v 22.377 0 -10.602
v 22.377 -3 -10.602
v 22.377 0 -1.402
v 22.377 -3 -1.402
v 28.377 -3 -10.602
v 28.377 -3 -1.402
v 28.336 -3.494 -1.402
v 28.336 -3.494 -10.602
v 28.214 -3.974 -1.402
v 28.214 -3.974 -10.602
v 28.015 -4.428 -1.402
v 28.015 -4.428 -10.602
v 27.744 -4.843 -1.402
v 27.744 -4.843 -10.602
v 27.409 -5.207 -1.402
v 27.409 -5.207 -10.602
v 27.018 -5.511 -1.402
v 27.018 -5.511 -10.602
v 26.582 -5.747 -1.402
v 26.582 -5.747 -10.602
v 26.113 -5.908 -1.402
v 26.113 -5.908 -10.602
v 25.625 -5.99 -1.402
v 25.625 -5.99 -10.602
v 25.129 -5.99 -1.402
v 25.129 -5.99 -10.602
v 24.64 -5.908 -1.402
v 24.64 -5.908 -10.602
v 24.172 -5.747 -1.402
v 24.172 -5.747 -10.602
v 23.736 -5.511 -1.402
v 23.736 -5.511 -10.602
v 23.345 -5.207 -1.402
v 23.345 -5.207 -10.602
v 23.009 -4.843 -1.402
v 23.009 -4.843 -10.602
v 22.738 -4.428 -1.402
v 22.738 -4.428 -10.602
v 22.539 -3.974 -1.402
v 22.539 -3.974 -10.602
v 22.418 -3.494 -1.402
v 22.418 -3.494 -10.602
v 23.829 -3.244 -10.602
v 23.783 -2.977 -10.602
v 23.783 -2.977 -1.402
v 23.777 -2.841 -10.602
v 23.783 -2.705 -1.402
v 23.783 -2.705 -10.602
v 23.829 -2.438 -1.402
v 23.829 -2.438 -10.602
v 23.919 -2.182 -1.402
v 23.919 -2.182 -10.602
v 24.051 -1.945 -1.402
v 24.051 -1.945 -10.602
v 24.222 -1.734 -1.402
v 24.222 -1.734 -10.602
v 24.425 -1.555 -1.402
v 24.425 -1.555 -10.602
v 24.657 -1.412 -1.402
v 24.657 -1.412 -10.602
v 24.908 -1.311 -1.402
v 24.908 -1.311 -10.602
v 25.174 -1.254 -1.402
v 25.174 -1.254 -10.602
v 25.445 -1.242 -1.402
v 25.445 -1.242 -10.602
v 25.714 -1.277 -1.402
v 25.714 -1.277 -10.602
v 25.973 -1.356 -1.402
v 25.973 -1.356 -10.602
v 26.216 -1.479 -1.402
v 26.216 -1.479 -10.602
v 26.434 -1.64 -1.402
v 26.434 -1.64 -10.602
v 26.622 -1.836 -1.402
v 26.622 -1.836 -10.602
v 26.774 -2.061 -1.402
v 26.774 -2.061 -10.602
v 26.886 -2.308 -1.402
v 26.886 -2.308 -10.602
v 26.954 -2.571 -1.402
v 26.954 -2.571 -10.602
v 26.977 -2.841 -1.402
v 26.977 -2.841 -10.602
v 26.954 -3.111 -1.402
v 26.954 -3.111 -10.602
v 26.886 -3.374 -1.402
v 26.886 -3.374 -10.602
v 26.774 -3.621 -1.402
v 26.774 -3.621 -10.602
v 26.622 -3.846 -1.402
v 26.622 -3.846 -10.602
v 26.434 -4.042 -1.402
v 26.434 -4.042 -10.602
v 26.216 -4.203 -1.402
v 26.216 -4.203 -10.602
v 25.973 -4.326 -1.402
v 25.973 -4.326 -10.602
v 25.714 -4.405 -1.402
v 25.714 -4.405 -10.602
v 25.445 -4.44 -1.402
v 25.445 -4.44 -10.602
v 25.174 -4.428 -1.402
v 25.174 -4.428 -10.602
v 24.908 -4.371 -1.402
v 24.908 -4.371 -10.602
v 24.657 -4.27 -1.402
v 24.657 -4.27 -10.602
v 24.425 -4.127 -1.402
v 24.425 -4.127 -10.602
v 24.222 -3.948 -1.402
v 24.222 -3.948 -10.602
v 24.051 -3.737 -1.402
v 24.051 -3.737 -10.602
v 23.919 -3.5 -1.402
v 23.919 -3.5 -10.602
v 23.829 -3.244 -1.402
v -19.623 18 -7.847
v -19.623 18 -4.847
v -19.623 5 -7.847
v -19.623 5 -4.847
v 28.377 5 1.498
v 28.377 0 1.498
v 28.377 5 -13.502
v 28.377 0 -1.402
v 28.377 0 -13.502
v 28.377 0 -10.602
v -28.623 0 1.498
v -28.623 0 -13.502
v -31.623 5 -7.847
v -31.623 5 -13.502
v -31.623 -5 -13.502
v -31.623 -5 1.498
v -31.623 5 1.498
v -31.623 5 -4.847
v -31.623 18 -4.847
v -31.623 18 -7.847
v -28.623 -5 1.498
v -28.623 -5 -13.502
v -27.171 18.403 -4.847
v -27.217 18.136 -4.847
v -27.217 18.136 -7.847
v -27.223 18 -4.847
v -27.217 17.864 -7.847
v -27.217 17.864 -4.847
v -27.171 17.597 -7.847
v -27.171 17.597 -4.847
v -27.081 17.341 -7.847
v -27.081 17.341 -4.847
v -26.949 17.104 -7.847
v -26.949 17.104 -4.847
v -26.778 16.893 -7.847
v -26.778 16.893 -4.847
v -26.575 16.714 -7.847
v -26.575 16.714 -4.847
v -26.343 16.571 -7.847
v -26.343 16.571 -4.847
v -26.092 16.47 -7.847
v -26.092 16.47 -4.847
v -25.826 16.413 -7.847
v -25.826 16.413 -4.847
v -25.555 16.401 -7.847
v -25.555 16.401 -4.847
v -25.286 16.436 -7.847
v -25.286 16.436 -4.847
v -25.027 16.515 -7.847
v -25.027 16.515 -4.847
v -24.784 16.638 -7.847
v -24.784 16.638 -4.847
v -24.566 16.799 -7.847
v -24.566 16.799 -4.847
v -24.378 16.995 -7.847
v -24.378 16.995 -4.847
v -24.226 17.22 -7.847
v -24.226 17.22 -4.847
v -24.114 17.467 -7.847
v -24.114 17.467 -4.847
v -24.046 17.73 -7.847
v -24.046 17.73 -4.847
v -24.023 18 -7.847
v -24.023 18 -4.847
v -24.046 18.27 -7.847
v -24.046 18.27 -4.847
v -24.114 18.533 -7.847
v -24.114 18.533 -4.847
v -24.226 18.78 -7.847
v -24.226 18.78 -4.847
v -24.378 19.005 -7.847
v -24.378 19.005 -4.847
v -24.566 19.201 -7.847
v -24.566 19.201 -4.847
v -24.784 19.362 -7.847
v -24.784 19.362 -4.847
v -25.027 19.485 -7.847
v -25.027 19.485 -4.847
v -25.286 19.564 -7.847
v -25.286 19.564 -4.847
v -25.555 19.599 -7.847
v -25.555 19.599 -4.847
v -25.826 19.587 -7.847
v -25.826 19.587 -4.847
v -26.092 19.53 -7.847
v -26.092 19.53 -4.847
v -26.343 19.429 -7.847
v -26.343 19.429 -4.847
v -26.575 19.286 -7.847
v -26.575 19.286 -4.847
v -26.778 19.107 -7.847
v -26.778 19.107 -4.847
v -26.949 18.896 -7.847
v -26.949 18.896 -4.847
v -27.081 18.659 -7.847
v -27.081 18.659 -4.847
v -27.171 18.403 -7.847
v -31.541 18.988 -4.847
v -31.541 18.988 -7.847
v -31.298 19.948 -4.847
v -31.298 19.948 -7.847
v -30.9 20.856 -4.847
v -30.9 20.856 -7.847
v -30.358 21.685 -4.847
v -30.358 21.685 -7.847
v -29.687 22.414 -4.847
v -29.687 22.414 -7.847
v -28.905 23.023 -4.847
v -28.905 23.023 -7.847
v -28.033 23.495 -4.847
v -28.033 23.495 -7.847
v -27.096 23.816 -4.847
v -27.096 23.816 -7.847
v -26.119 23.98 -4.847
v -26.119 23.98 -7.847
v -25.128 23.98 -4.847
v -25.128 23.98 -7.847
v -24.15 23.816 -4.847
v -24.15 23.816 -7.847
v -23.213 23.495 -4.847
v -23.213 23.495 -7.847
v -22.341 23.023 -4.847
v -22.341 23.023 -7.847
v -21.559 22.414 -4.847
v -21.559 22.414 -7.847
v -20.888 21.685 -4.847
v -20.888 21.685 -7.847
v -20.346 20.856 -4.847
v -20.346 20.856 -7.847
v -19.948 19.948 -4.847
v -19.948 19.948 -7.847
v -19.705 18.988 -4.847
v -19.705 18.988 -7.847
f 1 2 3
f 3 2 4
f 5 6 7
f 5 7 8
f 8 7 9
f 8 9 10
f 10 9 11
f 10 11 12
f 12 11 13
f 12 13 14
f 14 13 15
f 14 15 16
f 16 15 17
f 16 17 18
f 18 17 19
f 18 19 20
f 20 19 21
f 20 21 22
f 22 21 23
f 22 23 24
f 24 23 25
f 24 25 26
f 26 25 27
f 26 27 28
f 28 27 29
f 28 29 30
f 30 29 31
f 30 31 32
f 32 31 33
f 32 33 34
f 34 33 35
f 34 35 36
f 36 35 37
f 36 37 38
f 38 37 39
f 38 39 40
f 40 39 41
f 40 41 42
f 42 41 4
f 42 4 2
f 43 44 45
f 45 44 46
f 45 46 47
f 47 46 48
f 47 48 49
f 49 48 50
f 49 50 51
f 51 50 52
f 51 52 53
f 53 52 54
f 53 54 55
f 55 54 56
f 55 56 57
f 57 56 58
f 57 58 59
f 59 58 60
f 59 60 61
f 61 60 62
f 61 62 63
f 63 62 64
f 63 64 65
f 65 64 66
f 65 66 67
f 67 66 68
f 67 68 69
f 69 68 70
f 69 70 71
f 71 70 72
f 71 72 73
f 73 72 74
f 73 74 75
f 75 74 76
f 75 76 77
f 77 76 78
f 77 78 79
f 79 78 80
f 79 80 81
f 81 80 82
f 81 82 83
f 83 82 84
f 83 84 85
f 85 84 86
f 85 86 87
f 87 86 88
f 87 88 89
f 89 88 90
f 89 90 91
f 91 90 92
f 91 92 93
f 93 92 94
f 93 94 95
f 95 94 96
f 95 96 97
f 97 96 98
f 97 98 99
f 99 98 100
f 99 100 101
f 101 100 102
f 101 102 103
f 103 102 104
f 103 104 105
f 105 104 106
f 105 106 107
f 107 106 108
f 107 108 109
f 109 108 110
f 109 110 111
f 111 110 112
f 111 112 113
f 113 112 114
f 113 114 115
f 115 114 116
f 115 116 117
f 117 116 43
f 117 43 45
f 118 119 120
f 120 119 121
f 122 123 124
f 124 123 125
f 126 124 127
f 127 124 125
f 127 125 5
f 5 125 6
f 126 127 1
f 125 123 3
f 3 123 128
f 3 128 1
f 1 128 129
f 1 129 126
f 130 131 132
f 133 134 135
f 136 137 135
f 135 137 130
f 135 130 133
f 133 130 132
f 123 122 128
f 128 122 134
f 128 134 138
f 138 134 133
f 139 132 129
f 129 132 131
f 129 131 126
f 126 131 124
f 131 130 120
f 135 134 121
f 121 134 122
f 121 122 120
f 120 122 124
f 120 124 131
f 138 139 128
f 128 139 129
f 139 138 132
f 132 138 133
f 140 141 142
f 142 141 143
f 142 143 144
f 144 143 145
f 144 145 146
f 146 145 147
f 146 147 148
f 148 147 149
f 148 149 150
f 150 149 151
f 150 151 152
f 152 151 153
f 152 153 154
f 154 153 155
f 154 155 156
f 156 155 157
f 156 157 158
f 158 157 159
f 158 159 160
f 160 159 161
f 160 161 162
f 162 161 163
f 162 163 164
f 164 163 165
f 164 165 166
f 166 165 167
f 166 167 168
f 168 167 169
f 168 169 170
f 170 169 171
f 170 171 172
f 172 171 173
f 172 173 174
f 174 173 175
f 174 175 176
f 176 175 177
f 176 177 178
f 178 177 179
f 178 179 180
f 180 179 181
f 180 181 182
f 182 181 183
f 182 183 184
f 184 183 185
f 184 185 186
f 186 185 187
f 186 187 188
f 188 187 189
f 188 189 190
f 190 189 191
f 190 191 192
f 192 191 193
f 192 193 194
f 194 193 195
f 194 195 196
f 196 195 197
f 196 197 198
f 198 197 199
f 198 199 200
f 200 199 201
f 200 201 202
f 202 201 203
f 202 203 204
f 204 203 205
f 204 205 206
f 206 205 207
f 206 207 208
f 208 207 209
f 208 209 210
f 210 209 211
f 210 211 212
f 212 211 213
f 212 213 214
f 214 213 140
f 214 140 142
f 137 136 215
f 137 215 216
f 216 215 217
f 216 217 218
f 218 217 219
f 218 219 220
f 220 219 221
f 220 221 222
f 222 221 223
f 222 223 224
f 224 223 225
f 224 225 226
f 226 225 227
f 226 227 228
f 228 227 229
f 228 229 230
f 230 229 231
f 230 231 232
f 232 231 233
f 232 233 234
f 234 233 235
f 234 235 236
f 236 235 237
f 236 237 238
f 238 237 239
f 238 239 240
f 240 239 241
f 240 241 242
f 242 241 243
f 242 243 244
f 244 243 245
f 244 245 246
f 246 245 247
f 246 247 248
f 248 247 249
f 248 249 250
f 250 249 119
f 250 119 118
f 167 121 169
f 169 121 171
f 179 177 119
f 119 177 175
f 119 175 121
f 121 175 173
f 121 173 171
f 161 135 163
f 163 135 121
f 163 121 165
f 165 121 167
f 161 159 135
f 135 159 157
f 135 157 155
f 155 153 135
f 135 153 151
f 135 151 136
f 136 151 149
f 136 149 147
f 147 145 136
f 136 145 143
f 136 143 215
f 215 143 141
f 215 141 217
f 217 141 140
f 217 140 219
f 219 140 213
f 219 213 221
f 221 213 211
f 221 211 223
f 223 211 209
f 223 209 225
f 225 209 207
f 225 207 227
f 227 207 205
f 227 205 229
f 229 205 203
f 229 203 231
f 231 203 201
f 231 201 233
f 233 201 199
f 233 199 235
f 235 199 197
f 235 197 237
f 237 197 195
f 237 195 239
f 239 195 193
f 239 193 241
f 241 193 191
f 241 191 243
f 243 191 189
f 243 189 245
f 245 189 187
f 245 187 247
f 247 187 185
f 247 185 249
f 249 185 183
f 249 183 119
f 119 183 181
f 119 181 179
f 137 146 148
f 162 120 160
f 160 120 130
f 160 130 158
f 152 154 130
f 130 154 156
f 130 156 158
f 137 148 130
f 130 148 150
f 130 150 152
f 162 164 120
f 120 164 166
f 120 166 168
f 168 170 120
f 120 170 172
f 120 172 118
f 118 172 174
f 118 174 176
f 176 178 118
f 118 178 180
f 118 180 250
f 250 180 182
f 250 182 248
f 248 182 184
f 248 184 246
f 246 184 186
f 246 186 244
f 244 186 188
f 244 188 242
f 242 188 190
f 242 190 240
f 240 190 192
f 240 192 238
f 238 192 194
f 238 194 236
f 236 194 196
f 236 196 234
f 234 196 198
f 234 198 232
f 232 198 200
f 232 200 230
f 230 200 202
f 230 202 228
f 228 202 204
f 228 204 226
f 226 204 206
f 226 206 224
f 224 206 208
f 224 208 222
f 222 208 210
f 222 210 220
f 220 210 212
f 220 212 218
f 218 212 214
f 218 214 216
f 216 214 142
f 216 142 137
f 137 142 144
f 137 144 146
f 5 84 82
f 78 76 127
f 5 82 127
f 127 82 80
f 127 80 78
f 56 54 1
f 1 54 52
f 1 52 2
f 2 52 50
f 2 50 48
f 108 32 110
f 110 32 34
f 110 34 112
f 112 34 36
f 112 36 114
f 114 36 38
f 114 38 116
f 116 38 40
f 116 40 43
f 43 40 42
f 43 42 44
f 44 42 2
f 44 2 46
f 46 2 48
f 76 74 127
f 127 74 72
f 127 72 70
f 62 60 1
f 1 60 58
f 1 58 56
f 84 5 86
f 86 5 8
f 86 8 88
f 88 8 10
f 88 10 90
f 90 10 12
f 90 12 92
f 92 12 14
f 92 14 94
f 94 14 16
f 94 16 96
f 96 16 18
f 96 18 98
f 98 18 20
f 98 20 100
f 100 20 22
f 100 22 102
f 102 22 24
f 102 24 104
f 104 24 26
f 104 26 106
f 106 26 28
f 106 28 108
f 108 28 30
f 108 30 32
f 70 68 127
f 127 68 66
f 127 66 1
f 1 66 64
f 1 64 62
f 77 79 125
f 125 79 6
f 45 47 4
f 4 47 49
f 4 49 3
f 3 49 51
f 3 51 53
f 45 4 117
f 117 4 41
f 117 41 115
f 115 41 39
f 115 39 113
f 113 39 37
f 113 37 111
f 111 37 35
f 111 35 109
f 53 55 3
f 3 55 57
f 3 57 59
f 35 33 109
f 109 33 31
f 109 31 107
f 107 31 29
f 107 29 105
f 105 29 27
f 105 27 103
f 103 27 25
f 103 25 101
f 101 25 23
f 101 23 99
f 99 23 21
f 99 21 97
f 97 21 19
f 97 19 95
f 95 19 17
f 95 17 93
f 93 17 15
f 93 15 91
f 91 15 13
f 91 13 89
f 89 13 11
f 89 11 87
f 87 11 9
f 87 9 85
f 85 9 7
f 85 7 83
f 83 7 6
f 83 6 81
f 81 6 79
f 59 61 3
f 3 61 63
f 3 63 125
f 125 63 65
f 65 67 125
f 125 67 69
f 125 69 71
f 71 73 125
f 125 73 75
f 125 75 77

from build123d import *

# Parameters (mm, degrees)
SKETCH_1_W          = 60
SKETCH_1_H          = 15
EXTRUDE_1_DEPTH     = 5
SKETCH_2_W          = 3
SKETCH_2_H          = 15
EXTRUDE_2_DEPTH     = 5
SKETCH_3_W          = 6
SKETCH_3_H          = 10
EXTRUDE_3_DEPTH     = 6
CUT_EXTRUDE_1_DEPTH = 20
SKETCH_5_R          = 1.6
CUT_EXTRUDE_2_DEPTH = 20
SKETCH_6_W          = 12
SKETCH_6_H          = 3.8
EXTRUDE_5_DEPTH     = 19
SKETCH_10_R         = 1.6
CUT_EXTRUDE_4_DEPTH = 19
CUT_EXTRUDE_5_DEPTH = 19
SKETCH_12_W         = 12
SKETCH_12_H         = 19
CUT_EXTRUDE_6_DEPTH = 0.4
SKETCH_13_W         = 12
SKETCH_13_H         = 19
CUT_EXTRUDE_7_DEPTH = 0.4
SKETCH_14_W         = 6
SKETCH_14_H         = 6
CUT_EXTRUDE_8_DEPTH = 0.4
SKETCH_15_W         = 6
SKETCH_15_H         = 6
CUT_EXTRUDE_9_DEPTH = 0.4


with BuildPart() as part:
    # 草图1 → 凸台-拉伸1 (new body)
    with BuildSketch(Plane(origin=(0, 0, 0), x_dir=(1, 0, 0), z_dir=(0, 1, 0))):
        with Locations((-1.623095887, 6.001870645)):
            Rectangle(SKETCH_1_W, SKETCH_1_H)
    extrude(amount=EXTRUDE_1_DEPTH)

    # 草图2 → 凸台-拉伸2 (add)
    with BuildSketch(Plane.XZ):
        with Locations((-30.123095887, -6.001870645)):
            Rectangle(SKETCH_2_W, SKETCH_2_H)
    extrude(amount=EXTRUDE_2_DEPTH)

    # 草图3 → 凸台-拉伸3 (add)
    with BuildSketch(Plane.XZ):
        with Locations((25.376904113, -6.001870645)):
            Rectangle(SKETCH_3_W, SKETCH_3_H)
    extrude(amount=EXTRUDE_3_DEPTH)

    # 草图4 → 切除-拉伸1 (cut)
    with BuildSketch(Plane.XY.offset(-1.001870645)):
        with BuildLine():
            ThreePointArc((28.376904113, -3), (27.498224456, -5.121320344), (25.376904113, -6))
            Line((25.376904113, -6), (28.376904113, -6))
            Line((28.376904113, -6), (28.376904113, -3))
        make_face()
        with BuildLine():
            ThreePointArc((25.376904113, -6), (23.255583769, -5.121320344), (22.376904113, -3))
            Line((22.376904113, -3), (22.376904113, -6))
            Line((22.376904113, -6), (25.376904113, -6))
        make_face()
    extrude(amount=-CUT_EXTRUDE_1_DEPTH, mode=Mode.SUBTRACT)

    # 草图5 → 切除-拉伸2 (cut)
    with BuildSketch(Plane.XY.offset(-1.001870645)):
        with Locations((25.376904113, -2.840959341)):
            Circle(SKETCH_5_R)
    extrude(amount=-CUT_EXTRUDE_2_DEPTH, mode=Mode.SUBTRACT)

    # 草图6 → 凸台-拉伸5 (add)
    with BuildSketch(Plane(origin=(0, 5, 0), x_dir=(1, 0, 0), z_dir=(0, 1, 0))):
        with Locations((-25.623095887, 6.347440939)):
            Rectangle(SKETCH_6_W, SKETCH_6_H)
    extrude(amount=EXTRUDE_5_DEPTH)

    # 草图10 → 切除-拉伸4 (cut)
    with BuildSketch(Plane.XY.offset(-4.447440939)):
        with Locations((-25.623095887, 18)):
            Circle(SKETCH_10_R)
    extrude(amount=-CUT_EXTRUDE_4_DEPTH, mode=Mode.SUBTRACT)

    # 草图11 → 切除-拉伸5 (cut)
    with BuildSketch(Plane.XY.offset(-4.447440939)):
        with BuildLine():
            Line((-31.623095887, 24), (-31.623095887, 18))
            ThreePointArc((-31.623095887, 18), (-29.865736574, 22.242640687), (-25.623095887, 24))
            Line((-25.623095887, 24), (-31.623095887, 24))
        make_face()
        with BuildLine():
            Line((-19.623095887, 24), (-25.623095887, 24))
            ThreePointArc((-25.623095887, 24), (-21.3804552, 22.242640687), (-19.623095887, 18))
            Line((-19.623095887, 18), (-19.623095887, 24))
        make_face()
    extrude(amount=-CUT_EXTRUDE_5_DEPTH, mode=Mode.SUBTRACT)

    # 草图12 → 切除-拉伸6 (cut)
    with BuildSketch(Plane.XY.offset(-4.447440939)):
        with Locations((-25.623095887, 14.5)):
            Rectangle(SKETCH_12_W, SKETCH_12_H)
    extrude(amount=-CUT_EXTRUDE_6_DEPTH, mode=Mode.SUBTRACT)

    # 草图13 → 切除-拉伸7 (cut)
    with BuildSketch(Plane(origin=(0, 0, -8.247440939), x_dir=(-1, 0, 0), z_dir=(0, 0, -1))):
        with Locations((25.623095887, 14.5)):
            Rectangle(SKETCH_13_W, SKETCH_13_H)
    extrude(amount=-CUT_EXTRUDE_7_DEPTH, mode=Mode.SUBTRACT)

    # 草图14 → 切除-拉伸8 (cut)
    with BuildSketch(Plane(origin=(0, 0, -11.001870645), x_dir=(-1, 0, 0), z_dir=(0, 0, -1))):
        with Locations((-25.376904113, -3)):
            Rectangle(SKETCH_14_W, SKETCH_14_H)
    extrude(amount=-CUT_EXTRUDE_8_DEPTH, mode=Mode.SUBTRACT)

    # 草图15 → 切除-拉伸9 (cut)
    with BuildSketch(Plane.XY.offset(-1.001870645)):
        with Locations((25.376904113, -3)):
            Rectangle(SKETCH_15_W, SKETCH_15_H)
    extrude(amount=-CUT_EXTRUDE_9_DEPTH, mode=Mode.SUBTRACT)


solid = part.part
